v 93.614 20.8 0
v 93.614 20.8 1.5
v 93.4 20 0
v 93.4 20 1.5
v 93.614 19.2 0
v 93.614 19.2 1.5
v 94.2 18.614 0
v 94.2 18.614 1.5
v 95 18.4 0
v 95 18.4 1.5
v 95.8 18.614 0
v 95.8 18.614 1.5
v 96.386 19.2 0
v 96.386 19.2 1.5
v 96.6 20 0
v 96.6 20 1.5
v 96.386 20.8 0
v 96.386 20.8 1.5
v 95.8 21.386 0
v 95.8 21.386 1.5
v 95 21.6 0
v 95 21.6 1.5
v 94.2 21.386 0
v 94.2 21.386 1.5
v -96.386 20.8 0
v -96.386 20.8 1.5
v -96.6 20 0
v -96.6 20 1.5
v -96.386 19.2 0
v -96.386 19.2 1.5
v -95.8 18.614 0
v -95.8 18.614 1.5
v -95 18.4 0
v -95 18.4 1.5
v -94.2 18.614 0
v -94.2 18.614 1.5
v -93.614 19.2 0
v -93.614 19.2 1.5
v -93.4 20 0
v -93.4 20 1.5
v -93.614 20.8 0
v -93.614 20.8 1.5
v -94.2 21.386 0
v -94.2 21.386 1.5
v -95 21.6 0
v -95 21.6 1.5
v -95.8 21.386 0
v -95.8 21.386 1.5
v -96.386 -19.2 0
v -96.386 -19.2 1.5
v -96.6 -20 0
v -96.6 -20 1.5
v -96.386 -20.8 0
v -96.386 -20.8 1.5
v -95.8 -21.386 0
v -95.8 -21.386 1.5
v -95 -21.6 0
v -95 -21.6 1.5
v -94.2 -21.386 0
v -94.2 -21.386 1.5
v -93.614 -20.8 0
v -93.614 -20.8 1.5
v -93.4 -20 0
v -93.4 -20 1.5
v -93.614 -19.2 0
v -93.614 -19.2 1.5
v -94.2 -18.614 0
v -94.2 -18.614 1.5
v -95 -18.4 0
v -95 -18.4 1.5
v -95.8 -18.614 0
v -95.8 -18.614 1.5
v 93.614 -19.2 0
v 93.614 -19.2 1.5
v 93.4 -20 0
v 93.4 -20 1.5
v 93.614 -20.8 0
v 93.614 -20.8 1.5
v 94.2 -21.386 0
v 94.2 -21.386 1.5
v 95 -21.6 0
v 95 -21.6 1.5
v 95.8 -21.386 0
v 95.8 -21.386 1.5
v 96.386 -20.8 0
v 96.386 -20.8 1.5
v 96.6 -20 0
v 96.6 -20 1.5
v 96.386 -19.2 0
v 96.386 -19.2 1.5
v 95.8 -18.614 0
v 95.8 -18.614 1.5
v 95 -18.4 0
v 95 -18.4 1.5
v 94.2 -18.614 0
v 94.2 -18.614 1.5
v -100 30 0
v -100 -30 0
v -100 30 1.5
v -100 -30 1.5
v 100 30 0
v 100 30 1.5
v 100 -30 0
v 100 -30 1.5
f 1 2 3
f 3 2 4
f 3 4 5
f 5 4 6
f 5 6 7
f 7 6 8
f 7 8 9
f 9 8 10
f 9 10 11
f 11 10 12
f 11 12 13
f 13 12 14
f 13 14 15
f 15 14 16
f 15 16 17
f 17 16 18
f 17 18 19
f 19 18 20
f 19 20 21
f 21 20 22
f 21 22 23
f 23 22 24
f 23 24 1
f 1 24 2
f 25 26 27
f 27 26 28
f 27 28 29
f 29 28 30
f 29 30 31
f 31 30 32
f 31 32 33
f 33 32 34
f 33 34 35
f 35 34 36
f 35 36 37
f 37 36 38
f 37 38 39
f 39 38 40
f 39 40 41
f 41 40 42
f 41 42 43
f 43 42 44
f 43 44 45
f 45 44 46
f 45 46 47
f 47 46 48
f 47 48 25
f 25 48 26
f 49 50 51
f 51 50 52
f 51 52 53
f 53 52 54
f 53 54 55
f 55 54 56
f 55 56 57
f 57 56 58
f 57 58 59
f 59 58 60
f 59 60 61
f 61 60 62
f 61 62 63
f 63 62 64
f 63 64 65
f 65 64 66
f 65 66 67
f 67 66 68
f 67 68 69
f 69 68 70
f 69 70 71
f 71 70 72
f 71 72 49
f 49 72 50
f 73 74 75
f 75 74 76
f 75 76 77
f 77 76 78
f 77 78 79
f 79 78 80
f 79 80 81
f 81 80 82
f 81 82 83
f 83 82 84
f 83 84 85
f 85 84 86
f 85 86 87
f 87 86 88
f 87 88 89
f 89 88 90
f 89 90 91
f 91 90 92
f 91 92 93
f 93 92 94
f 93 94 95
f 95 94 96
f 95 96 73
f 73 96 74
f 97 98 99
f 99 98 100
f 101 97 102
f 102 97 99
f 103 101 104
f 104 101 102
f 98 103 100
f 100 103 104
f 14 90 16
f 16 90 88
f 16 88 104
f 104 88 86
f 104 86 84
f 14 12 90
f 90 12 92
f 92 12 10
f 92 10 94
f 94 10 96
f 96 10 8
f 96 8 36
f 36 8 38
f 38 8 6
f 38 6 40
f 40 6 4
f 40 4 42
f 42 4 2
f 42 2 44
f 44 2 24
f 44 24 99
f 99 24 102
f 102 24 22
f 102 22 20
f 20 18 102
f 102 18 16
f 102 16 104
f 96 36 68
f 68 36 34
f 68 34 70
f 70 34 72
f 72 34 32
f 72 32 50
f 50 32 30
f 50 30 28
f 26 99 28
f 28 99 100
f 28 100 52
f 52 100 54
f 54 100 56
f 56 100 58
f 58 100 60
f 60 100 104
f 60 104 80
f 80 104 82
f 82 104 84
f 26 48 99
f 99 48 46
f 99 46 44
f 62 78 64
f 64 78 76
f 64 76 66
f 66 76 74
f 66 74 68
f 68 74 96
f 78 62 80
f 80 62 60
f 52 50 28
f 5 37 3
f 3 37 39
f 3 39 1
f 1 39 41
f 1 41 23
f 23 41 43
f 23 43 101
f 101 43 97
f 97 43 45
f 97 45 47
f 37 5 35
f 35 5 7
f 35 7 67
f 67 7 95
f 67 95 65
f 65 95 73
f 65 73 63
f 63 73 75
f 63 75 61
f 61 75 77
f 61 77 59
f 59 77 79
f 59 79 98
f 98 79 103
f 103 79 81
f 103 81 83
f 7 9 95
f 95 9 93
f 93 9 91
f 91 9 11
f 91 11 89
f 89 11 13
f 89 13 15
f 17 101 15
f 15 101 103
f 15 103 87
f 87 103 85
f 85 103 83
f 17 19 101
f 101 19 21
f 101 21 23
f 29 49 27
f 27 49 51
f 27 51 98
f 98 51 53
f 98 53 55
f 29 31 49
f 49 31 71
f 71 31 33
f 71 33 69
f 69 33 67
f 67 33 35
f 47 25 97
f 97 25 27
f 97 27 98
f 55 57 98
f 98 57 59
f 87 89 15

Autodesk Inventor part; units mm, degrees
ref_plane "YZ Plane" through (0, 0, 0) normal (1, 0, 0) x (0, 1, 0)
ref_plane "XZ Plane" through (0, 0, 0) normal (0, 1, 0) x (-1, 0, 0)
ref_plane "XY Plane" through (0, 0, 0) normal (0, 0, 1) x (1, 0, 0)
sketch "スケッチ1" plane through (0, 0, 0) normal (0, 0, 1) x (1, 0, 0)
  line L0 (-100, -30) -> (100, -30)
  line L1 (100, -30) -> (100, 30)
  line L2 (100, 30) -> (-100, 30)
  line L3 (-100, 30) -> (-100, -30)
  line L4 (-100, -30) -> (100, 30) construction
  line L5 (100, -30) -> (-100, 30) construction
  point P0 (0, 0)
  dimension "d0" = 60
  dimension "d1" = 200
extrude "押し出し1" add sketch "スケッチ1" along normal blind 1.5
sketch "スケッチ2" plane through (0, 0, 1.5) normal (0, 0, 1) x (1, 0, 0)
  line L0 (-100, 30) -> (-100, -30) projected
  line L1 (100, 30) -> (-100, 30) projected
  line L2 (-100, -30) -> (100, -30) projected
  line L3 (100, -30) -> (100, 30) projected
  point P0 (0, 0)
  point P1 (-95, 20)
  point P2 (-95, -20)
  point P3 (95, 20)
  point P4 (95, -20)
  dimension "d4" = 5
  dimension "d5" = 10
  dimension "d6" = 10
  dimension "d7" = 40
  dimension "d8" = 5
  dimension "d9" = 5
hole "穴1" at (-95, 20, 1.5) at (-95, -20, 1.5) at (95, 20, 1.5) at (95, -20, 1.5) direction (0, 0, -1) diameter 3.2 depth 8.8 tip angle 118
properties part number "20220624_3階部分"
